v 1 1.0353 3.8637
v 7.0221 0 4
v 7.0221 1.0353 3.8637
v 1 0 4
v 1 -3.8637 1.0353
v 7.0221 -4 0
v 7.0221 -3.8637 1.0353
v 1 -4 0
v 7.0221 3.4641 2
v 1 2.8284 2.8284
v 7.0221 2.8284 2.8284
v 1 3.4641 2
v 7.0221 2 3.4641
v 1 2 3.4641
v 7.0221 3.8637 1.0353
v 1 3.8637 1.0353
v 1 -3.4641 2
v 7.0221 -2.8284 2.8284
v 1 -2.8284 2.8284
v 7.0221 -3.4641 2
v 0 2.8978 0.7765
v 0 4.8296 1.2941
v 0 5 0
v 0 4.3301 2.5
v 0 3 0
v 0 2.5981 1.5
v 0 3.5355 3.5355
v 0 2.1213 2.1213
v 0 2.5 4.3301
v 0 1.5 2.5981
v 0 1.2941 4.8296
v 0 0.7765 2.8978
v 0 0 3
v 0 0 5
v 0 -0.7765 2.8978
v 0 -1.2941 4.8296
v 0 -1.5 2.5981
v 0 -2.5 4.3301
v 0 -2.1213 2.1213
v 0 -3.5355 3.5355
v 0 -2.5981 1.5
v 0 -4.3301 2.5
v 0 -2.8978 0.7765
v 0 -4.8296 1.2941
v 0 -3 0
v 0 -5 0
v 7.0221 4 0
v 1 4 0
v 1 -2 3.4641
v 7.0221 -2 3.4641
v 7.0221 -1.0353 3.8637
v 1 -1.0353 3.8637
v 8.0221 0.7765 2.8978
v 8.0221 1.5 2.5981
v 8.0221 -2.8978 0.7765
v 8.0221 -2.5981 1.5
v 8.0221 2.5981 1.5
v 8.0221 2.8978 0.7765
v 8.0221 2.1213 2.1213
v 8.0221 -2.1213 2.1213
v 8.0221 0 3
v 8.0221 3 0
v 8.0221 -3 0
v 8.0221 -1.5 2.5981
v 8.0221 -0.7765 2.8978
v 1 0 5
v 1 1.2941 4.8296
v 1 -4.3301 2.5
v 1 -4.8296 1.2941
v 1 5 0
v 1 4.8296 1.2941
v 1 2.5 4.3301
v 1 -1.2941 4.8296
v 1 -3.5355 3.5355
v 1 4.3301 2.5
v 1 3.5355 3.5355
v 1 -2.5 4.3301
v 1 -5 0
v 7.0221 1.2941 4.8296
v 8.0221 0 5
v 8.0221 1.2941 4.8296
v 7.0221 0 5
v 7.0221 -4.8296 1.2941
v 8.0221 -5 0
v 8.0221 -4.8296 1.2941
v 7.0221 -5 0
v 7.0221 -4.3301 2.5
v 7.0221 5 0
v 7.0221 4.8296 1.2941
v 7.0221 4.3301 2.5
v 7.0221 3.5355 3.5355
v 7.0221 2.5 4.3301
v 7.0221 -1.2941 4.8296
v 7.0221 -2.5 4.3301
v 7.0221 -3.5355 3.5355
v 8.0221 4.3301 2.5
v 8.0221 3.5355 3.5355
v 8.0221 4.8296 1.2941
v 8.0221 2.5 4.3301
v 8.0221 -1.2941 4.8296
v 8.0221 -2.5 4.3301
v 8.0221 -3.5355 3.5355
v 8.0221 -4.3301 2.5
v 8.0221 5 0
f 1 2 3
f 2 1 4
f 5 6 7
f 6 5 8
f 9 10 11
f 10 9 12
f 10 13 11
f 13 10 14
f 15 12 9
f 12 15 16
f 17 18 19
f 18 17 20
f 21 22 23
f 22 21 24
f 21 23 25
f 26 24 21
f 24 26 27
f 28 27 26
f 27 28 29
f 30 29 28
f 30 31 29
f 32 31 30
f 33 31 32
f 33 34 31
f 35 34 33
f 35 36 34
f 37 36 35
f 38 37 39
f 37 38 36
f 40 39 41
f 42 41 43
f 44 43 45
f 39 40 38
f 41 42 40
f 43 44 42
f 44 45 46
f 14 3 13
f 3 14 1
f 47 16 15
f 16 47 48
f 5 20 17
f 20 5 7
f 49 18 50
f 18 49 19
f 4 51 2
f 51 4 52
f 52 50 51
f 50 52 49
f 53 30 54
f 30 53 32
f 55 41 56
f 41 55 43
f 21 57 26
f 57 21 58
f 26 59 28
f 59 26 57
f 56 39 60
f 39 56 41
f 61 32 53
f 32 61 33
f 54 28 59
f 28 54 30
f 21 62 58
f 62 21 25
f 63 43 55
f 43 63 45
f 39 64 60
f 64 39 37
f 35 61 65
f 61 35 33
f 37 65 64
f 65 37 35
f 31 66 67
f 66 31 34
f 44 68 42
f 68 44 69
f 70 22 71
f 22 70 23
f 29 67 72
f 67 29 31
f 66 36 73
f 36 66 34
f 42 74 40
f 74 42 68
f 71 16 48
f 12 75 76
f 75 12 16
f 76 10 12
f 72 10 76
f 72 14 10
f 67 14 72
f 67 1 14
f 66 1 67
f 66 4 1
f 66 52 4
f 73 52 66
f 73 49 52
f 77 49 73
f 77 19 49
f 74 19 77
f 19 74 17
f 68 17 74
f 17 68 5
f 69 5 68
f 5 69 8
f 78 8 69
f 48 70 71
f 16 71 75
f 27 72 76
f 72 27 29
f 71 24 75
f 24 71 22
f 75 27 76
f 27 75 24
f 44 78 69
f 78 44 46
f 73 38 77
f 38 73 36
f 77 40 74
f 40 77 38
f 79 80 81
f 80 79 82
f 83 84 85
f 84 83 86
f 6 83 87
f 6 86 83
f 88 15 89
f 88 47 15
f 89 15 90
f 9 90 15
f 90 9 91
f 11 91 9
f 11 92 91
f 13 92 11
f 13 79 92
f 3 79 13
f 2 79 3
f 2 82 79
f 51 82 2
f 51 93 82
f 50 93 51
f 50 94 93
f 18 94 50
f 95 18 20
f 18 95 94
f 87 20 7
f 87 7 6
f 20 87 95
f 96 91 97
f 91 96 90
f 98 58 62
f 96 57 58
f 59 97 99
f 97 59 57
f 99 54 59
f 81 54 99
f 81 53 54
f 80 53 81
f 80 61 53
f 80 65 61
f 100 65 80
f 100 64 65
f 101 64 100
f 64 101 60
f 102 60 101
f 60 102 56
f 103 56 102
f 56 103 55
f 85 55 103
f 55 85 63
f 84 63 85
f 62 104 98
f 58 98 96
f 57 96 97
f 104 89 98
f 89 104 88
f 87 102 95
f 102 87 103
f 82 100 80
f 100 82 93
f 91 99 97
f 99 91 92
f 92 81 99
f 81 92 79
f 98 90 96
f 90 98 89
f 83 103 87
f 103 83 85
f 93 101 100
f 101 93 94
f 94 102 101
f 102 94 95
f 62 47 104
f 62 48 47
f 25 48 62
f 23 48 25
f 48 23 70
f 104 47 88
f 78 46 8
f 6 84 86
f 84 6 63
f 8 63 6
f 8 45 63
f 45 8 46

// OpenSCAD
// file: ../build_environments.scad
// build_environments.scad: modules to build level sections
//

module pool(diameter=10.0, wall_height=2.0, step_width=3.0, connections=[])
{
    difference() {
        union() {
        difference() {
            cylinder(h=0.5,r1=diameter+step_width,r2=diameter+step_width,$fn=48);
            translate([0,0,-0.1])
                cylinder(h=0.7,r1=diameter,r2=diameter,$fn=48);
        }
        difference() {
            cylinder(h=wall_height,r1=diameter+step_width+1.0,r2=diameter+step_width+1.0,$fn=48);
            translate([0,0,-0.1])
                cylinder(h=wall_height+0.2,r1=diameter+step_width,r2=diameter+step_width,$fn=48);
        }
        }
    
        for (c = connections)
        {
            rotate([0,90,0]) {
                angle = atan2(c[1],c[0]);
                rotate([-angle,0,0]) {
                    cylinder(h=diameter+5.0,r1=c[2],r2=c[2],$fn=48);
                }
            }
        }
    }
}

module straight(length=10.0, width=2.0, dy1=0.0, dy2=0.0, dz=0.0)
{
    dims = [0, 0, 0, 0, 0, (dz/length)];
    matrix = [
        [ 1, dims[0], dims[1], 0 ],
        [ dims[2], 1, dims[4], 0 ],
        [ dims[5], dims[3], 1, 0 ],
        [ 0, 0, 0, 1 ]
    ];
    multmatrix(matrix)
    difference() {
        translate([dy1,0,0])
        union() {
            rotate([0,90,0]) {
                difference() {
                    cylinder(h=(length-dy1-dy2),r1=width+1.0,r2=width+1.0,$fn=24);
                    translate([0,0,-0.1])
                        cylinder(h=(length-dy1-dy2+0.2),r1=width,r2=width,$fn=24);
                }
                difference() {
                    cylinder(h=1.0,r1=width+2.0,r2=width+2.0,$fn=24);
                    translate([0,0,-0.1])
                        cylinder(h=1.2,r1=width,r2=width,$fn=24);
                }
                translate([0,0,(length-dy1-dy2)-1.0]) {
                    difference() {
                        cylinder(h=1.0,r1=width+2.0,r2=width+2.0,$fn=24);
                        translate([0,0,-0.1])
                            cylinder(h=1.2,r1=width,r2=width,$fn=24);
                    }
                }
            }
        }
        translate([0,0,-(2*width+4.0)/2])
            cube([3*length,3*length,2*width+4.0],center=true);
    }
}

module curve(p0=[0,0], center=[0,0], dir=1, angle=0.0, width=2.0)
{
    radius = sqrt((p0[0]-center[0])*(p0[0]-center[0]) + (p0[1]-center[1])*(p0[1]-center[1]));
    if (dir == 0) {
        difference() {
            rotate([0,0,-90])
            difference() {
                rotate_extrude(angle = angle, convexity = 10, $fn=32)
                    translate([radius, 0, 0])
                        circle(r = width+1.0,$fn=24);
                rotate([0,0,-1.0])
                    rotate_extrude(angle = angle+2.0, convexity = 10, $fn=32)
                        translate([radius, 0, 0])
                            circle(r = width,$fn=24);
            }
            translate([0,0,-(2*width+4.0)/2])
                cube([5*radius,5*radius,2*width+4.0],center=true);
        }
    }
    else {
        difference() {
            rotate([0,0,90])
            difference() {
                rotate_extrude(angle = -angle, convexity = 10, $fn=32)
                    translate([radius, 0, 0])
                        circle(r = width+1.0,$fn=24);
                rotate([0,0,1.0])
                    rotate_extrude(angle = -angle-2.0, convexity = 10, $fn=32)
                        translate([radius, 0, 0])
                            circle(r = width,$fn=24);
            }
            translate([0,0,-(2*width+4.0)/2])
                cube([5*radius,5*radius,2*width+4.0],center=true);
        }
    }

}

// test pool
//pool(diameter=12.0000, wall_height=3.0000, step_width=3.0000, connections=[[0.0000,-26.0000,2.0000], [23.6074,0.0000,2.0000]]);

// test straight, slope
//straight(length=26.0000, width=2.0000, dy1=11.8322, dy2=6.7082, dz=0.0000);
//straight(length=29.1549, width=12.0000, dy1=0.0000, dy2=0.0000, dz=-15.0000);

// test curve
//curve(p0=[23.6074, 0.0000], center=[23.6074, 5.0000], dir=0, angle=60.1011, width=2.0000);
//curve(p0=[33.6426, 12.4219], center=[37.9771, 9.9295], dir=1, angle=120.4627, width=2.0000);
// main file
use <../build_environments.scad>;
straight(length=8.0221, width=3.0000, dy1=0.0000, dy2=0.0000, dz=0.0000);
